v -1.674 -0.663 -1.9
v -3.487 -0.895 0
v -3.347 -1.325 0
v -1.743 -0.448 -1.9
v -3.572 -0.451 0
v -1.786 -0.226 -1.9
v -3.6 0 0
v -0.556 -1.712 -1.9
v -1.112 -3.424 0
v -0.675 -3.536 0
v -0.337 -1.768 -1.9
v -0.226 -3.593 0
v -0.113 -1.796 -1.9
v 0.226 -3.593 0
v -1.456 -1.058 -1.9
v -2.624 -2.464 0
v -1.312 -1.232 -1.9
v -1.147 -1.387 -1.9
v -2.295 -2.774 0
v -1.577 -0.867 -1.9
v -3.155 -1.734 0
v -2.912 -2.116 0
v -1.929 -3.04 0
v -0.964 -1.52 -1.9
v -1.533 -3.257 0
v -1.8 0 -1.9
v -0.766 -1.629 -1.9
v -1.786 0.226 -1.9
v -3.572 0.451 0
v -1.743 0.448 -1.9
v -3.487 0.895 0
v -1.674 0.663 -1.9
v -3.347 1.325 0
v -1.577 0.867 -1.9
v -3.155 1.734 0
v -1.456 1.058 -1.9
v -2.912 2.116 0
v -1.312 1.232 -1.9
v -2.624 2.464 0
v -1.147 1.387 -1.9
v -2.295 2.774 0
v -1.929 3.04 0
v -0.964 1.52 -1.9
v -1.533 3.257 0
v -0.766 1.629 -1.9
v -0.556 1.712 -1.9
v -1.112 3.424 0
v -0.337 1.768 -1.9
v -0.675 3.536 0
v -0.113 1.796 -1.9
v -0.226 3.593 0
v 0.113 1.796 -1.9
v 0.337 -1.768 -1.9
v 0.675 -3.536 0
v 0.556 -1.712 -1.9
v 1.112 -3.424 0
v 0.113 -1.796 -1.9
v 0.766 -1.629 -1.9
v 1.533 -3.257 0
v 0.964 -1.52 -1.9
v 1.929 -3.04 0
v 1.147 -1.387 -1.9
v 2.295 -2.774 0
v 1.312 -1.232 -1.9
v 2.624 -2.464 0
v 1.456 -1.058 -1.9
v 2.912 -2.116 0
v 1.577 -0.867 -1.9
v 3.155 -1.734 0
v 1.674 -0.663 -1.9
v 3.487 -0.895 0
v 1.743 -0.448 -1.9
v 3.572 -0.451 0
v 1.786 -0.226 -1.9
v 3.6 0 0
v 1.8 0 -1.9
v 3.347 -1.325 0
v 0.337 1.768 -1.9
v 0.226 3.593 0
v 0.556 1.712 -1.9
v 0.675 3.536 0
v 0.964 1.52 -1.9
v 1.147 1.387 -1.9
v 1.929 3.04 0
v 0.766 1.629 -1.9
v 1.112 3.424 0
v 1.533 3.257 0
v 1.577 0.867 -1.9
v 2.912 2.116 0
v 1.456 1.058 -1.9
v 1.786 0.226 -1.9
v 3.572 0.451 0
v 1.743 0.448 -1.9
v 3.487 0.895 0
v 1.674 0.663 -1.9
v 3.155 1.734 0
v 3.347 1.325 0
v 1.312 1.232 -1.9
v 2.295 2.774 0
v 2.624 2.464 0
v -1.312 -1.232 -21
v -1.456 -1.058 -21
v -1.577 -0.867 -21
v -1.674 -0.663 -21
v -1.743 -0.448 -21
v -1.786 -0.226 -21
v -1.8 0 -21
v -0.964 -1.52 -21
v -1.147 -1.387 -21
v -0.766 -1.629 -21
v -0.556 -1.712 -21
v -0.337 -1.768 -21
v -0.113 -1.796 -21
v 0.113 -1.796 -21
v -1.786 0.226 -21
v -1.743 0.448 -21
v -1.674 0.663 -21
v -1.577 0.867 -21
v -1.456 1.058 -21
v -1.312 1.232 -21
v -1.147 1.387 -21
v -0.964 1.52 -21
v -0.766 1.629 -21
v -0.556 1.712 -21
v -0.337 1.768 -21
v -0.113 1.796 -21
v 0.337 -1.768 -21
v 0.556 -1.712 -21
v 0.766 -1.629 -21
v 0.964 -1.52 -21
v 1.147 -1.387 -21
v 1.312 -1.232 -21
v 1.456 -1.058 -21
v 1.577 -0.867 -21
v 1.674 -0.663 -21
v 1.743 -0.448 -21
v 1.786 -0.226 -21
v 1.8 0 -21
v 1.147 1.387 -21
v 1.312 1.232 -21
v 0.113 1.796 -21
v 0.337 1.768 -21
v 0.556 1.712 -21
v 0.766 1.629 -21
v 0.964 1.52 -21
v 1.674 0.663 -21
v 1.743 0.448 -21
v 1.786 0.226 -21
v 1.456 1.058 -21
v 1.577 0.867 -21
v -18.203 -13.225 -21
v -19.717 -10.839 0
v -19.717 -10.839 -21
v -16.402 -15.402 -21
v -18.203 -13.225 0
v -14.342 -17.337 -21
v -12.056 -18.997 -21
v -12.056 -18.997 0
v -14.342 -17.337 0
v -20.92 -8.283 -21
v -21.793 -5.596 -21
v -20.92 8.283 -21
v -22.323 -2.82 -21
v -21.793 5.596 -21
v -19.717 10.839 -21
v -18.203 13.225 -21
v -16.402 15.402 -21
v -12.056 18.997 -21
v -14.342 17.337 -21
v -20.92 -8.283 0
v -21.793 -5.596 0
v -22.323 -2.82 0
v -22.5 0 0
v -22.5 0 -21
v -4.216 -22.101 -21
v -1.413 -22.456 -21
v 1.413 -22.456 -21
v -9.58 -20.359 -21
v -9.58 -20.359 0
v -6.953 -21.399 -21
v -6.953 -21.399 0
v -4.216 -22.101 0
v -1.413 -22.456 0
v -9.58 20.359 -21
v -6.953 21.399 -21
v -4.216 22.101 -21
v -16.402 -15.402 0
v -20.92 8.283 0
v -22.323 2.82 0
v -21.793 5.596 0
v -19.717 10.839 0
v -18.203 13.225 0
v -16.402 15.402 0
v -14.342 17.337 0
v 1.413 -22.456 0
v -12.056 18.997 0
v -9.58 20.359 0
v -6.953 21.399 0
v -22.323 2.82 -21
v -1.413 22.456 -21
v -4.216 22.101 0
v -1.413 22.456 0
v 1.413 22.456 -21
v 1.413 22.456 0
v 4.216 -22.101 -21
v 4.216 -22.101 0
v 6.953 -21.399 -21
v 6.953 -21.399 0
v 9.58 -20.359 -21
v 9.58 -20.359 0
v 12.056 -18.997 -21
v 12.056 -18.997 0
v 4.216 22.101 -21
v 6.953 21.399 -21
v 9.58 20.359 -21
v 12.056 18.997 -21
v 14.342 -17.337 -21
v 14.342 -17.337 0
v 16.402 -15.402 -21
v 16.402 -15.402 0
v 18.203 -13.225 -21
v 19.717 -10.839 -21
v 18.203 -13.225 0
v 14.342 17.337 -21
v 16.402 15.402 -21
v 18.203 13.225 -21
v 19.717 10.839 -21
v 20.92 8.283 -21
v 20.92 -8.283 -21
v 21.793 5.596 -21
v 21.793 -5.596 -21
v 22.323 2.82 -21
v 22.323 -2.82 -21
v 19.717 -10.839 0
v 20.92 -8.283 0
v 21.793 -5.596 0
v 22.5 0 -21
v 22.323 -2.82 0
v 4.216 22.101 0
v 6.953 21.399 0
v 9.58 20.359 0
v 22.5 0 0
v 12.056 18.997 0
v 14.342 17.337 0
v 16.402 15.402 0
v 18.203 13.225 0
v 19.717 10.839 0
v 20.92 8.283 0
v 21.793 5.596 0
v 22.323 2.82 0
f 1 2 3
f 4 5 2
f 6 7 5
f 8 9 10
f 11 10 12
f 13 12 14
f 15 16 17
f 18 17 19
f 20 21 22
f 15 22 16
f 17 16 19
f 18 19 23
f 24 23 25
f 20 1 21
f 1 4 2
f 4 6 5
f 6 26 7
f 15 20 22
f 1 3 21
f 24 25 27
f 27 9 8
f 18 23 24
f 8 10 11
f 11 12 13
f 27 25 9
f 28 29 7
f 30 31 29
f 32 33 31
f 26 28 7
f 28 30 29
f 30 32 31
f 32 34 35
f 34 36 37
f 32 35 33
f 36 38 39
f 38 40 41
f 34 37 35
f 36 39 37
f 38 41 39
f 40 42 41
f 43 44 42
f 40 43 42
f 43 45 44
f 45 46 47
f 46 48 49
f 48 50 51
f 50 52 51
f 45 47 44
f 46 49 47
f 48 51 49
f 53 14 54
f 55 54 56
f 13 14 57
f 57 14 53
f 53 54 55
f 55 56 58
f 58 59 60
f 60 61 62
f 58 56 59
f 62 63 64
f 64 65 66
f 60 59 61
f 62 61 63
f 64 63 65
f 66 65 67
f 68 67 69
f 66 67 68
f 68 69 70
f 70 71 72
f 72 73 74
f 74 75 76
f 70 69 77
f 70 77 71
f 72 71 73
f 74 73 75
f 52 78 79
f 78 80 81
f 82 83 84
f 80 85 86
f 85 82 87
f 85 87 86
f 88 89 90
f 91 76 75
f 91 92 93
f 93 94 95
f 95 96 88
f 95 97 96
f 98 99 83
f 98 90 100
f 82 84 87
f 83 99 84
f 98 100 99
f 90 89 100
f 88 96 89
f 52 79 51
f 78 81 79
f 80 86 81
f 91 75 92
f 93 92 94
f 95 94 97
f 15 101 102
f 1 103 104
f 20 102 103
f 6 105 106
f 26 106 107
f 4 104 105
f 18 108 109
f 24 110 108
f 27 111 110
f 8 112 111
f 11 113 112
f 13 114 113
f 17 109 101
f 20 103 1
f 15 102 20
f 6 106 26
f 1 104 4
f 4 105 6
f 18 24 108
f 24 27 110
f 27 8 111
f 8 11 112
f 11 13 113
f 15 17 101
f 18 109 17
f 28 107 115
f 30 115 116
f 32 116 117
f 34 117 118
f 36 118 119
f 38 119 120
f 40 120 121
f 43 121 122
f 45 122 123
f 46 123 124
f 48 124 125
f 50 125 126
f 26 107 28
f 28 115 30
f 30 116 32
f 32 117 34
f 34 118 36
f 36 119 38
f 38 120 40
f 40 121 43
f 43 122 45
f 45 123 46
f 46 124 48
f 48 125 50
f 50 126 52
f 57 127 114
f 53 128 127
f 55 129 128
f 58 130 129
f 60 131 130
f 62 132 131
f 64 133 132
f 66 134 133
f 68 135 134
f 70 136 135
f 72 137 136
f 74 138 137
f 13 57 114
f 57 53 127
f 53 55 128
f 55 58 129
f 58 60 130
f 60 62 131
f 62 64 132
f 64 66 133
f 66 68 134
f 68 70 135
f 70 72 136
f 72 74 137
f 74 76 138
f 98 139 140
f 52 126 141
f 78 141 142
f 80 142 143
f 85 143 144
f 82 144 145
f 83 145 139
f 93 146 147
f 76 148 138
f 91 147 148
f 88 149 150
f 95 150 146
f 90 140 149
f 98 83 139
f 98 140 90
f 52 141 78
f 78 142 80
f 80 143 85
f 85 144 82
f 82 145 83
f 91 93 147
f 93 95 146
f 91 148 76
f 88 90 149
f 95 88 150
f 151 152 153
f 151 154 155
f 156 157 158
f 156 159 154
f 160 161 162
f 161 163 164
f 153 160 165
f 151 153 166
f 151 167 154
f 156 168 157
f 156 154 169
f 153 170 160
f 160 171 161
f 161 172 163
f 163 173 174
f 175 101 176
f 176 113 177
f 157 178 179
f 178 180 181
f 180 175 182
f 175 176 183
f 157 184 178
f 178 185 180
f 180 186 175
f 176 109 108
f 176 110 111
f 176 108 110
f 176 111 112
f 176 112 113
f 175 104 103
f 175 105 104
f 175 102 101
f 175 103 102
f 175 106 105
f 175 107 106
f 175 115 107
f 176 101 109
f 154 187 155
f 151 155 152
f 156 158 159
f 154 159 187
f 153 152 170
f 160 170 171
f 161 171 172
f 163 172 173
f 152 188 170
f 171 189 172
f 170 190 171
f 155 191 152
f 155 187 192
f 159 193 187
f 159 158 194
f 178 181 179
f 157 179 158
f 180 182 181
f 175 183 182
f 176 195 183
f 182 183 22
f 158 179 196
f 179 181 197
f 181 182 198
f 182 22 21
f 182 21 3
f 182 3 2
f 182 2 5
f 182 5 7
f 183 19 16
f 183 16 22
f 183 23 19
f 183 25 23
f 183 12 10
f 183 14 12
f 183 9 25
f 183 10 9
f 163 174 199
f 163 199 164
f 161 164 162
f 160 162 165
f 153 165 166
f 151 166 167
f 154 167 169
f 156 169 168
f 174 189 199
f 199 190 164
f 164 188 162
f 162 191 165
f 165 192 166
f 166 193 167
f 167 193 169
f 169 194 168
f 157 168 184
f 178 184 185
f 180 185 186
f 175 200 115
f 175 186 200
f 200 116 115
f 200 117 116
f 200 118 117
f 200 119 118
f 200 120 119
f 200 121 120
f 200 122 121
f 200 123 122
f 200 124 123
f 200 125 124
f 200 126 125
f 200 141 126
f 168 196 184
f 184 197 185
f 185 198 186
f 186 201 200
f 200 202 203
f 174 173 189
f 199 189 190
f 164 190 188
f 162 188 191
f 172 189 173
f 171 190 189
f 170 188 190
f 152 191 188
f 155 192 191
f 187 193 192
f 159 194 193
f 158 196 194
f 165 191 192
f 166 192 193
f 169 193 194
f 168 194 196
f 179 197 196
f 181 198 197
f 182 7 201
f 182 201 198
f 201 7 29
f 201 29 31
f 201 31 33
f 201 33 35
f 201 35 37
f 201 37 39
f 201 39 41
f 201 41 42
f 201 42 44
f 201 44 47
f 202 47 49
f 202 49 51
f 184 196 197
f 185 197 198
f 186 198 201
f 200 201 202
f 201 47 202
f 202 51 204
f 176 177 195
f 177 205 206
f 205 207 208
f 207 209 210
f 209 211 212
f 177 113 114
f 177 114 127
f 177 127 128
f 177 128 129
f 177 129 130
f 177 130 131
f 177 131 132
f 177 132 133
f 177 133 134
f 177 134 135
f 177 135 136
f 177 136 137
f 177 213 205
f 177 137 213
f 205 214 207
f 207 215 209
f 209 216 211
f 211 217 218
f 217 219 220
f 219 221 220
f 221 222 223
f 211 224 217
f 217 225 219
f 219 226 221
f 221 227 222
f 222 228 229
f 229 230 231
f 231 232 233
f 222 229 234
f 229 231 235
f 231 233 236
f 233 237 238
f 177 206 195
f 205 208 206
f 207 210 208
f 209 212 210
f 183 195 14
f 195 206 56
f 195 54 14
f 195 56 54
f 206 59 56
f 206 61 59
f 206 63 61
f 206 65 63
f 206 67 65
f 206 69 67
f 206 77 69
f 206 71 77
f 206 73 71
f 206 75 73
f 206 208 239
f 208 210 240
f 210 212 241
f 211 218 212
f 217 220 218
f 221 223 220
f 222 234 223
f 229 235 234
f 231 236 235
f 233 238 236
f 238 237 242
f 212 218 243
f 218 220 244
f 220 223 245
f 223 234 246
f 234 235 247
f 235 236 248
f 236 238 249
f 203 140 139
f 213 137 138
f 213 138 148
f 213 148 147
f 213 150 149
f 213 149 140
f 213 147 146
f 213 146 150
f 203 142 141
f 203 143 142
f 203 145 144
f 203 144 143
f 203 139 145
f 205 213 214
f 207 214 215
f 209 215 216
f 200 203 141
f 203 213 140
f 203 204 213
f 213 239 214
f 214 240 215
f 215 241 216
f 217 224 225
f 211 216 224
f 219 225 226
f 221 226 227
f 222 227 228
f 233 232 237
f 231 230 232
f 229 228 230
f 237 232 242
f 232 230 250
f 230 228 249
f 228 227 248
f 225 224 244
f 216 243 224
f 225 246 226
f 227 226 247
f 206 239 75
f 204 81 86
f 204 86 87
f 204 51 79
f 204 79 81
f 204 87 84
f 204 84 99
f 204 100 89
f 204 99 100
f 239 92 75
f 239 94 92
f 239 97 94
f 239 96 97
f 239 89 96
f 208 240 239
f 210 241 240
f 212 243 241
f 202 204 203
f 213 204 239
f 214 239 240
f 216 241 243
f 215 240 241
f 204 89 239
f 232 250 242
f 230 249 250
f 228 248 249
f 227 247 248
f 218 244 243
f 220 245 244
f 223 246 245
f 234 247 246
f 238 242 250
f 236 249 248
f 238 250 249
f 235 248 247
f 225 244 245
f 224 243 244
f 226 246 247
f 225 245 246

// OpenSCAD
$fn = 50;

difference() {
	union() {
		translate(v = [0, 0, -21.0]) {
			cylinder(h = 21, r = 22.5);
		}
	}
	union() {
		translate(v = [0, 0, 0]) {
			rotate(a = [0, 0, 0]) {
				difference() {
					union() {
						translate(v = [0, 0, -24.0]) {
							cylinder(h = 24, r = 1.5);
						}
						translate(v = [0, 0, -1.9]) {
							cylinder(h = 1.9, r1 = 1.8, r2 = 3.6);
						}
						translate(v = [0, 0, -24.0]) {
							cylinder(h = 24, r = 1.8);
						}
						translate(v = [0, 0, -24.0]) {
							cylinder(h = 24, r = 1.5);
						}
					}
					union();
				}
			}
		}
	}
}
